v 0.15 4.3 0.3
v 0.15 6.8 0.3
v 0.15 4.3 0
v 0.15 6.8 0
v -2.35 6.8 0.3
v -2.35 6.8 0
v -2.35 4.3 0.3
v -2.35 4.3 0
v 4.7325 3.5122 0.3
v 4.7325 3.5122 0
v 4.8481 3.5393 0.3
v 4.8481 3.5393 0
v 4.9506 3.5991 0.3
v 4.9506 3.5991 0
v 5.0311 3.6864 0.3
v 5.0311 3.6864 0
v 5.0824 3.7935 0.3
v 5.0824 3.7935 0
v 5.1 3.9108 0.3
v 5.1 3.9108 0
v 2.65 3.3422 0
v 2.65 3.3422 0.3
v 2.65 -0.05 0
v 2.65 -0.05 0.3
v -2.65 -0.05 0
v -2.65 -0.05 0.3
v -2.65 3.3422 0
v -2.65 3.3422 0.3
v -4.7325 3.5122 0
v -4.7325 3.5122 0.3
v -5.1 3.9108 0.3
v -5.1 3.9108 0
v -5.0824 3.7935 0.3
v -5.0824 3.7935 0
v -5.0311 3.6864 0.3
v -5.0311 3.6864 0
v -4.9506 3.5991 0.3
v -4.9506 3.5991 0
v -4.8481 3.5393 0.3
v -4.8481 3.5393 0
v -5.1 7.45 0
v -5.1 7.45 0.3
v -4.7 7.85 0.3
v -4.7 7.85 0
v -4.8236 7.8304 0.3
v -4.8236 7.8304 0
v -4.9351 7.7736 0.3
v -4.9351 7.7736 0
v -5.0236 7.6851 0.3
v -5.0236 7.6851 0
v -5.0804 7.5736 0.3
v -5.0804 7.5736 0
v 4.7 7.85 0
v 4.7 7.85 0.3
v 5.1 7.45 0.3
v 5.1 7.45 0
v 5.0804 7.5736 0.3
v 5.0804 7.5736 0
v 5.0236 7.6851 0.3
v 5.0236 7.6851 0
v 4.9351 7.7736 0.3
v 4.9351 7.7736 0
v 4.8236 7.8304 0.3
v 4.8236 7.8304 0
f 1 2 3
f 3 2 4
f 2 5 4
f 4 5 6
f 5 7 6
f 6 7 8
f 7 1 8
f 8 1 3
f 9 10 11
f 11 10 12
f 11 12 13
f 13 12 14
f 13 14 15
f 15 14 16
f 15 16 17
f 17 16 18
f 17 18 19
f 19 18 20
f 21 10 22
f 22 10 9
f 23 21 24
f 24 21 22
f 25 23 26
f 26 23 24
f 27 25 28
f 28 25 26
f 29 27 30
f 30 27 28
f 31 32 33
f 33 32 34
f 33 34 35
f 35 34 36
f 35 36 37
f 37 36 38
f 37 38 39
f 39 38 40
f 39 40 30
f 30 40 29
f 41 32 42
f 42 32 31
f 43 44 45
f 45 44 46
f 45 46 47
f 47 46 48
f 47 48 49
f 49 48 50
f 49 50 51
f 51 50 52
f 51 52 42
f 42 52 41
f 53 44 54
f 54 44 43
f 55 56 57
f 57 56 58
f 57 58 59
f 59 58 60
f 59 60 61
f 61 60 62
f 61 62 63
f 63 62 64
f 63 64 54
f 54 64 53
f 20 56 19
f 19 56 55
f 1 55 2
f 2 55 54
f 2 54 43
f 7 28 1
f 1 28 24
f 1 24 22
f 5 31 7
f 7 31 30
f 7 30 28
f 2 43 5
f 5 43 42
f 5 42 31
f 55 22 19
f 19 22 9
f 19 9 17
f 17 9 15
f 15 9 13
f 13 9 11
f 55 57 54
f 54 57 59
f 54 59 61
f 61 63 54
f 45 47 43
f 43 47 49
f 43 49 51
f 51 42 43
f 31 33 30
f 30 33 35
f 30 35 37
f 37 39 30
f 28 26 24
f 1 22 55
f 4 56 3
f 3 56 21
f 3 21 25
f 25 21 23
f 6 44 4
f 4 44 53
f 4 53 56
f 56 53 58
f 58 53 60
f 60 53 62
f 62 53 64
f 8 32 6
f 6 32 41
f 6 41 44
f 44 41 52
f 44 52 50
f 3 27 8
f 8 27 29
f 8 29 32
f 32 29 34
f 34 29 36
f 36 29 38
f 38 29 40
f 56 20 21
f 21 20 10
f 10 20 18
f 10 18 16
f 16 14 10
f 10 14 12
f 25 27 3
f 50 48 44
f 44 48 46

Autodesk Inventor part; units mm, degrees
ref_plane "YZ Plane" through (0, 0, 0) normal (1, 0, 0) x (0, 1, 0)
ref_plane "XZ Plane" through (0, 0, 0) normal (0, 1, 0) x (-1, 0, 0)
ref_plane "XY Plane" through (0, 0, 0) normal (0, 0, 1) x (1, 0, 0)
sketch "Sketch1" plane through (0, 0, 0) normal (0, 0, 1) x (1, 0, 0)
  line L0 (-2.75, 3.25) -> (-4.7407, 3.4125) projected
  arc A0 (-5.2, 3.9108) -> (-4.7407, 3.4125) centre (-4.7, 3.9108) ccw projected
  line L1 (-5.2, 3.9108) -> (-5.2, 7.45) projected
  arc A1 (-4.7, 7.95) -> (-5.2, 7.45) centre (-4.7, 7.45) ccw projected
  arc A2 (5.2176, 3.2181) -> (5.6, 3.45) centre (5.1769, 3.7165) ccw projected
  line L2 (5.6, 3.45) -> (5.6, 7.75) projected
  arc A3 (5.6, 7.75) -> (5.1, 8.25) centre (5.1, 7.75) ccw projected
  line L3 (-5.1, 8.25) -> (5.1, 8.25) projected
  arc A4 (-5.1, 8.25) -> (-5.6, 7.75) centre (-5.1, 7.75) ccw projected
  line L4 (-5.6, 3.45) -> (-5.6, 7.75) projected
  arc A5 (-5.6, 3.45) -> (-5.2176, 3.2181) centre (-5.1769, 3.7165) ccw projected
  line L5 (-5.2176, 3.2181) -> (-3.1663, 3.0507) projected
  arc A6 (-3.15, 2.7961) -> (-3.1663, 3.0507) centre (-5.15, 2.7961) ccw projected
  line L6 (-3.15, -0.45) -> (-3.15, 2.7961) projected
  line L7 (3.15, -0.45) -> (-3.15, -0.45) projected
  line L8 (3.15, 2.7961) -> (3.15, -0.45) projected
  arc A7 (3.1663, 3.0507) -> (3.15, 2.7961) centre (5.15, 2.7961) ccw projected
  line L9 (3.1663, 3.0507) -> (5.2176, 3.2181) projected
  line L10 (2.75, -0.15) -> (2.75, 3.25) projected
  line L11 (-2.75, -0.15) -> (2.75, -0.15) projected
  line L12 (-2.75, 3.25) -> (-2.75, -0.15) projected
  line L13 (-2.75, 3.25) -> (-4.7407, 3.4125) projected
  arc A8 (-5.2, 3.9108) -> (-4.7407, 3.4125) centre (-4.7, 3.9108) ccw projected
  line L14 (-5.2, 3.9108) -> (-5.2, 7.45) projected
  arc A9 (-4.7, 7.95) -> (-5.2, 7.45) centre (-4.7, 7.45) ccw projected
  line L15 (-4.7, 7.95) -> (4.7, 7.95) projected
  arc A10 (5.2, 7.45) -> (4.7, 7.95) centre (4.7, 7.45) ccw projected
  line L16 (5.2, 3.9108) -> (5.2, 7.45) projected
  arc A11 (4.7407, 3.4125) -> (5.2, 3.9108) centre (4.7, 3.9108) ccw projected
  line L17 (4.7407, 3.4125) -> (2.75, 3.25) projected
  line L18 (-2.65, -0.05) -> (-2.65, 3.3422)
  line L19 (-2.65, 3.3422) -> (-4.7325, 3.5122)
  line L20 (-5.1, 3.9108) -> (-5.1, 7.45)
  line L21 (-4.7, 7.85) -> (4.7, 7.85)
  line L22 (5.1, 7.45) -> (5.1, 3.9108)
  line L23 (4.7325, 3.5122) -> (2.65, 3.3422)
  line L24 (2.65, 3.3422) -> (2.65, -0.05)
  line L25 (2.65, -0.05) -> (-2.65, -0.05)
  arc A12 (-5.1, 3.9108) -> (-4.7325, 3.5122) centre (-4.7, 3.9108) ccw
  arc A13 (4.7325, 3.5122) -> (5.1, 3.9108) centre (4.7, 3.9108) ccw
  arc A14 (-4.7, 7.85) -> (-5.1, 7.45) centre (-4.7, 7.45) ccw
  arc A15 (5.1, 7.45) -> (4.7, 7.85) centre (4.7, 7.45) ccw
  point P0 (0, 0)
  dimension "d0" = 0.1
  dimension "d1" = 0.1
  dimension "d2" = 0.1
  dimension "d3" = 0.1
  dimension "d4" = 0.1
  dimension "d5" = 0.1
  dimension "d6" = 0.1
  dimension "d7" = 0.1
  dimension "d8" = 0.4
  dimension "d9" = 0.4
  dimension "d10" = 0.4
  dimension "d11" = 0.4
extrude "Extrusion1" add sketch "Sketch1" along normal blind 0.3 contours L18 L19 A12 L20 A14 L21 A15 L22 A13 L23 L24 L25
sketch "Sketch2" plane through (0, 0, 0.3) normal (0, 0, 1) x (1, 0, 0)
  line L0 (-2.35, 6.8) -> (0.15, 6.8)
  line L1 (0.15, 6.8) -> (0.15, 4.3)
  line L2 (0.15, 4.3) -> (-2.35, 4.3)
  line L3 (-2.35, 4.3) -> (-2.35, 6.8)
  line L4 (-5.1, 7.45) -> (-5.1, 3.9108) projected
  line L5 (4.7, 7.85) -> (-4.7, 7.85) projected
  point P0 (0, 0)
  dimension "d14" = 2.75
  dimension "d15" = 1.05
  dimension "d16" = 2.5
  dimension "d17" = 2.5
extrude "Extrusion2" cut sketch "Sketch2" against normal blind 0.3
equation "\"d1\" = d0"
equation "\"d2\" = d0"
equation "\"d3\" = d0"
equation "\"d4\" = d0"
equation "\"d5\" = d0"
equation "\"d6\" = d0"
equation "\"d7\" = d0"
equation "\"d8\" = d10"
equation "\"d9\" = d10"
equation "\"d11\" = d10"
equation "\"d17\" = d16"
properties part number "top_enclosure"
